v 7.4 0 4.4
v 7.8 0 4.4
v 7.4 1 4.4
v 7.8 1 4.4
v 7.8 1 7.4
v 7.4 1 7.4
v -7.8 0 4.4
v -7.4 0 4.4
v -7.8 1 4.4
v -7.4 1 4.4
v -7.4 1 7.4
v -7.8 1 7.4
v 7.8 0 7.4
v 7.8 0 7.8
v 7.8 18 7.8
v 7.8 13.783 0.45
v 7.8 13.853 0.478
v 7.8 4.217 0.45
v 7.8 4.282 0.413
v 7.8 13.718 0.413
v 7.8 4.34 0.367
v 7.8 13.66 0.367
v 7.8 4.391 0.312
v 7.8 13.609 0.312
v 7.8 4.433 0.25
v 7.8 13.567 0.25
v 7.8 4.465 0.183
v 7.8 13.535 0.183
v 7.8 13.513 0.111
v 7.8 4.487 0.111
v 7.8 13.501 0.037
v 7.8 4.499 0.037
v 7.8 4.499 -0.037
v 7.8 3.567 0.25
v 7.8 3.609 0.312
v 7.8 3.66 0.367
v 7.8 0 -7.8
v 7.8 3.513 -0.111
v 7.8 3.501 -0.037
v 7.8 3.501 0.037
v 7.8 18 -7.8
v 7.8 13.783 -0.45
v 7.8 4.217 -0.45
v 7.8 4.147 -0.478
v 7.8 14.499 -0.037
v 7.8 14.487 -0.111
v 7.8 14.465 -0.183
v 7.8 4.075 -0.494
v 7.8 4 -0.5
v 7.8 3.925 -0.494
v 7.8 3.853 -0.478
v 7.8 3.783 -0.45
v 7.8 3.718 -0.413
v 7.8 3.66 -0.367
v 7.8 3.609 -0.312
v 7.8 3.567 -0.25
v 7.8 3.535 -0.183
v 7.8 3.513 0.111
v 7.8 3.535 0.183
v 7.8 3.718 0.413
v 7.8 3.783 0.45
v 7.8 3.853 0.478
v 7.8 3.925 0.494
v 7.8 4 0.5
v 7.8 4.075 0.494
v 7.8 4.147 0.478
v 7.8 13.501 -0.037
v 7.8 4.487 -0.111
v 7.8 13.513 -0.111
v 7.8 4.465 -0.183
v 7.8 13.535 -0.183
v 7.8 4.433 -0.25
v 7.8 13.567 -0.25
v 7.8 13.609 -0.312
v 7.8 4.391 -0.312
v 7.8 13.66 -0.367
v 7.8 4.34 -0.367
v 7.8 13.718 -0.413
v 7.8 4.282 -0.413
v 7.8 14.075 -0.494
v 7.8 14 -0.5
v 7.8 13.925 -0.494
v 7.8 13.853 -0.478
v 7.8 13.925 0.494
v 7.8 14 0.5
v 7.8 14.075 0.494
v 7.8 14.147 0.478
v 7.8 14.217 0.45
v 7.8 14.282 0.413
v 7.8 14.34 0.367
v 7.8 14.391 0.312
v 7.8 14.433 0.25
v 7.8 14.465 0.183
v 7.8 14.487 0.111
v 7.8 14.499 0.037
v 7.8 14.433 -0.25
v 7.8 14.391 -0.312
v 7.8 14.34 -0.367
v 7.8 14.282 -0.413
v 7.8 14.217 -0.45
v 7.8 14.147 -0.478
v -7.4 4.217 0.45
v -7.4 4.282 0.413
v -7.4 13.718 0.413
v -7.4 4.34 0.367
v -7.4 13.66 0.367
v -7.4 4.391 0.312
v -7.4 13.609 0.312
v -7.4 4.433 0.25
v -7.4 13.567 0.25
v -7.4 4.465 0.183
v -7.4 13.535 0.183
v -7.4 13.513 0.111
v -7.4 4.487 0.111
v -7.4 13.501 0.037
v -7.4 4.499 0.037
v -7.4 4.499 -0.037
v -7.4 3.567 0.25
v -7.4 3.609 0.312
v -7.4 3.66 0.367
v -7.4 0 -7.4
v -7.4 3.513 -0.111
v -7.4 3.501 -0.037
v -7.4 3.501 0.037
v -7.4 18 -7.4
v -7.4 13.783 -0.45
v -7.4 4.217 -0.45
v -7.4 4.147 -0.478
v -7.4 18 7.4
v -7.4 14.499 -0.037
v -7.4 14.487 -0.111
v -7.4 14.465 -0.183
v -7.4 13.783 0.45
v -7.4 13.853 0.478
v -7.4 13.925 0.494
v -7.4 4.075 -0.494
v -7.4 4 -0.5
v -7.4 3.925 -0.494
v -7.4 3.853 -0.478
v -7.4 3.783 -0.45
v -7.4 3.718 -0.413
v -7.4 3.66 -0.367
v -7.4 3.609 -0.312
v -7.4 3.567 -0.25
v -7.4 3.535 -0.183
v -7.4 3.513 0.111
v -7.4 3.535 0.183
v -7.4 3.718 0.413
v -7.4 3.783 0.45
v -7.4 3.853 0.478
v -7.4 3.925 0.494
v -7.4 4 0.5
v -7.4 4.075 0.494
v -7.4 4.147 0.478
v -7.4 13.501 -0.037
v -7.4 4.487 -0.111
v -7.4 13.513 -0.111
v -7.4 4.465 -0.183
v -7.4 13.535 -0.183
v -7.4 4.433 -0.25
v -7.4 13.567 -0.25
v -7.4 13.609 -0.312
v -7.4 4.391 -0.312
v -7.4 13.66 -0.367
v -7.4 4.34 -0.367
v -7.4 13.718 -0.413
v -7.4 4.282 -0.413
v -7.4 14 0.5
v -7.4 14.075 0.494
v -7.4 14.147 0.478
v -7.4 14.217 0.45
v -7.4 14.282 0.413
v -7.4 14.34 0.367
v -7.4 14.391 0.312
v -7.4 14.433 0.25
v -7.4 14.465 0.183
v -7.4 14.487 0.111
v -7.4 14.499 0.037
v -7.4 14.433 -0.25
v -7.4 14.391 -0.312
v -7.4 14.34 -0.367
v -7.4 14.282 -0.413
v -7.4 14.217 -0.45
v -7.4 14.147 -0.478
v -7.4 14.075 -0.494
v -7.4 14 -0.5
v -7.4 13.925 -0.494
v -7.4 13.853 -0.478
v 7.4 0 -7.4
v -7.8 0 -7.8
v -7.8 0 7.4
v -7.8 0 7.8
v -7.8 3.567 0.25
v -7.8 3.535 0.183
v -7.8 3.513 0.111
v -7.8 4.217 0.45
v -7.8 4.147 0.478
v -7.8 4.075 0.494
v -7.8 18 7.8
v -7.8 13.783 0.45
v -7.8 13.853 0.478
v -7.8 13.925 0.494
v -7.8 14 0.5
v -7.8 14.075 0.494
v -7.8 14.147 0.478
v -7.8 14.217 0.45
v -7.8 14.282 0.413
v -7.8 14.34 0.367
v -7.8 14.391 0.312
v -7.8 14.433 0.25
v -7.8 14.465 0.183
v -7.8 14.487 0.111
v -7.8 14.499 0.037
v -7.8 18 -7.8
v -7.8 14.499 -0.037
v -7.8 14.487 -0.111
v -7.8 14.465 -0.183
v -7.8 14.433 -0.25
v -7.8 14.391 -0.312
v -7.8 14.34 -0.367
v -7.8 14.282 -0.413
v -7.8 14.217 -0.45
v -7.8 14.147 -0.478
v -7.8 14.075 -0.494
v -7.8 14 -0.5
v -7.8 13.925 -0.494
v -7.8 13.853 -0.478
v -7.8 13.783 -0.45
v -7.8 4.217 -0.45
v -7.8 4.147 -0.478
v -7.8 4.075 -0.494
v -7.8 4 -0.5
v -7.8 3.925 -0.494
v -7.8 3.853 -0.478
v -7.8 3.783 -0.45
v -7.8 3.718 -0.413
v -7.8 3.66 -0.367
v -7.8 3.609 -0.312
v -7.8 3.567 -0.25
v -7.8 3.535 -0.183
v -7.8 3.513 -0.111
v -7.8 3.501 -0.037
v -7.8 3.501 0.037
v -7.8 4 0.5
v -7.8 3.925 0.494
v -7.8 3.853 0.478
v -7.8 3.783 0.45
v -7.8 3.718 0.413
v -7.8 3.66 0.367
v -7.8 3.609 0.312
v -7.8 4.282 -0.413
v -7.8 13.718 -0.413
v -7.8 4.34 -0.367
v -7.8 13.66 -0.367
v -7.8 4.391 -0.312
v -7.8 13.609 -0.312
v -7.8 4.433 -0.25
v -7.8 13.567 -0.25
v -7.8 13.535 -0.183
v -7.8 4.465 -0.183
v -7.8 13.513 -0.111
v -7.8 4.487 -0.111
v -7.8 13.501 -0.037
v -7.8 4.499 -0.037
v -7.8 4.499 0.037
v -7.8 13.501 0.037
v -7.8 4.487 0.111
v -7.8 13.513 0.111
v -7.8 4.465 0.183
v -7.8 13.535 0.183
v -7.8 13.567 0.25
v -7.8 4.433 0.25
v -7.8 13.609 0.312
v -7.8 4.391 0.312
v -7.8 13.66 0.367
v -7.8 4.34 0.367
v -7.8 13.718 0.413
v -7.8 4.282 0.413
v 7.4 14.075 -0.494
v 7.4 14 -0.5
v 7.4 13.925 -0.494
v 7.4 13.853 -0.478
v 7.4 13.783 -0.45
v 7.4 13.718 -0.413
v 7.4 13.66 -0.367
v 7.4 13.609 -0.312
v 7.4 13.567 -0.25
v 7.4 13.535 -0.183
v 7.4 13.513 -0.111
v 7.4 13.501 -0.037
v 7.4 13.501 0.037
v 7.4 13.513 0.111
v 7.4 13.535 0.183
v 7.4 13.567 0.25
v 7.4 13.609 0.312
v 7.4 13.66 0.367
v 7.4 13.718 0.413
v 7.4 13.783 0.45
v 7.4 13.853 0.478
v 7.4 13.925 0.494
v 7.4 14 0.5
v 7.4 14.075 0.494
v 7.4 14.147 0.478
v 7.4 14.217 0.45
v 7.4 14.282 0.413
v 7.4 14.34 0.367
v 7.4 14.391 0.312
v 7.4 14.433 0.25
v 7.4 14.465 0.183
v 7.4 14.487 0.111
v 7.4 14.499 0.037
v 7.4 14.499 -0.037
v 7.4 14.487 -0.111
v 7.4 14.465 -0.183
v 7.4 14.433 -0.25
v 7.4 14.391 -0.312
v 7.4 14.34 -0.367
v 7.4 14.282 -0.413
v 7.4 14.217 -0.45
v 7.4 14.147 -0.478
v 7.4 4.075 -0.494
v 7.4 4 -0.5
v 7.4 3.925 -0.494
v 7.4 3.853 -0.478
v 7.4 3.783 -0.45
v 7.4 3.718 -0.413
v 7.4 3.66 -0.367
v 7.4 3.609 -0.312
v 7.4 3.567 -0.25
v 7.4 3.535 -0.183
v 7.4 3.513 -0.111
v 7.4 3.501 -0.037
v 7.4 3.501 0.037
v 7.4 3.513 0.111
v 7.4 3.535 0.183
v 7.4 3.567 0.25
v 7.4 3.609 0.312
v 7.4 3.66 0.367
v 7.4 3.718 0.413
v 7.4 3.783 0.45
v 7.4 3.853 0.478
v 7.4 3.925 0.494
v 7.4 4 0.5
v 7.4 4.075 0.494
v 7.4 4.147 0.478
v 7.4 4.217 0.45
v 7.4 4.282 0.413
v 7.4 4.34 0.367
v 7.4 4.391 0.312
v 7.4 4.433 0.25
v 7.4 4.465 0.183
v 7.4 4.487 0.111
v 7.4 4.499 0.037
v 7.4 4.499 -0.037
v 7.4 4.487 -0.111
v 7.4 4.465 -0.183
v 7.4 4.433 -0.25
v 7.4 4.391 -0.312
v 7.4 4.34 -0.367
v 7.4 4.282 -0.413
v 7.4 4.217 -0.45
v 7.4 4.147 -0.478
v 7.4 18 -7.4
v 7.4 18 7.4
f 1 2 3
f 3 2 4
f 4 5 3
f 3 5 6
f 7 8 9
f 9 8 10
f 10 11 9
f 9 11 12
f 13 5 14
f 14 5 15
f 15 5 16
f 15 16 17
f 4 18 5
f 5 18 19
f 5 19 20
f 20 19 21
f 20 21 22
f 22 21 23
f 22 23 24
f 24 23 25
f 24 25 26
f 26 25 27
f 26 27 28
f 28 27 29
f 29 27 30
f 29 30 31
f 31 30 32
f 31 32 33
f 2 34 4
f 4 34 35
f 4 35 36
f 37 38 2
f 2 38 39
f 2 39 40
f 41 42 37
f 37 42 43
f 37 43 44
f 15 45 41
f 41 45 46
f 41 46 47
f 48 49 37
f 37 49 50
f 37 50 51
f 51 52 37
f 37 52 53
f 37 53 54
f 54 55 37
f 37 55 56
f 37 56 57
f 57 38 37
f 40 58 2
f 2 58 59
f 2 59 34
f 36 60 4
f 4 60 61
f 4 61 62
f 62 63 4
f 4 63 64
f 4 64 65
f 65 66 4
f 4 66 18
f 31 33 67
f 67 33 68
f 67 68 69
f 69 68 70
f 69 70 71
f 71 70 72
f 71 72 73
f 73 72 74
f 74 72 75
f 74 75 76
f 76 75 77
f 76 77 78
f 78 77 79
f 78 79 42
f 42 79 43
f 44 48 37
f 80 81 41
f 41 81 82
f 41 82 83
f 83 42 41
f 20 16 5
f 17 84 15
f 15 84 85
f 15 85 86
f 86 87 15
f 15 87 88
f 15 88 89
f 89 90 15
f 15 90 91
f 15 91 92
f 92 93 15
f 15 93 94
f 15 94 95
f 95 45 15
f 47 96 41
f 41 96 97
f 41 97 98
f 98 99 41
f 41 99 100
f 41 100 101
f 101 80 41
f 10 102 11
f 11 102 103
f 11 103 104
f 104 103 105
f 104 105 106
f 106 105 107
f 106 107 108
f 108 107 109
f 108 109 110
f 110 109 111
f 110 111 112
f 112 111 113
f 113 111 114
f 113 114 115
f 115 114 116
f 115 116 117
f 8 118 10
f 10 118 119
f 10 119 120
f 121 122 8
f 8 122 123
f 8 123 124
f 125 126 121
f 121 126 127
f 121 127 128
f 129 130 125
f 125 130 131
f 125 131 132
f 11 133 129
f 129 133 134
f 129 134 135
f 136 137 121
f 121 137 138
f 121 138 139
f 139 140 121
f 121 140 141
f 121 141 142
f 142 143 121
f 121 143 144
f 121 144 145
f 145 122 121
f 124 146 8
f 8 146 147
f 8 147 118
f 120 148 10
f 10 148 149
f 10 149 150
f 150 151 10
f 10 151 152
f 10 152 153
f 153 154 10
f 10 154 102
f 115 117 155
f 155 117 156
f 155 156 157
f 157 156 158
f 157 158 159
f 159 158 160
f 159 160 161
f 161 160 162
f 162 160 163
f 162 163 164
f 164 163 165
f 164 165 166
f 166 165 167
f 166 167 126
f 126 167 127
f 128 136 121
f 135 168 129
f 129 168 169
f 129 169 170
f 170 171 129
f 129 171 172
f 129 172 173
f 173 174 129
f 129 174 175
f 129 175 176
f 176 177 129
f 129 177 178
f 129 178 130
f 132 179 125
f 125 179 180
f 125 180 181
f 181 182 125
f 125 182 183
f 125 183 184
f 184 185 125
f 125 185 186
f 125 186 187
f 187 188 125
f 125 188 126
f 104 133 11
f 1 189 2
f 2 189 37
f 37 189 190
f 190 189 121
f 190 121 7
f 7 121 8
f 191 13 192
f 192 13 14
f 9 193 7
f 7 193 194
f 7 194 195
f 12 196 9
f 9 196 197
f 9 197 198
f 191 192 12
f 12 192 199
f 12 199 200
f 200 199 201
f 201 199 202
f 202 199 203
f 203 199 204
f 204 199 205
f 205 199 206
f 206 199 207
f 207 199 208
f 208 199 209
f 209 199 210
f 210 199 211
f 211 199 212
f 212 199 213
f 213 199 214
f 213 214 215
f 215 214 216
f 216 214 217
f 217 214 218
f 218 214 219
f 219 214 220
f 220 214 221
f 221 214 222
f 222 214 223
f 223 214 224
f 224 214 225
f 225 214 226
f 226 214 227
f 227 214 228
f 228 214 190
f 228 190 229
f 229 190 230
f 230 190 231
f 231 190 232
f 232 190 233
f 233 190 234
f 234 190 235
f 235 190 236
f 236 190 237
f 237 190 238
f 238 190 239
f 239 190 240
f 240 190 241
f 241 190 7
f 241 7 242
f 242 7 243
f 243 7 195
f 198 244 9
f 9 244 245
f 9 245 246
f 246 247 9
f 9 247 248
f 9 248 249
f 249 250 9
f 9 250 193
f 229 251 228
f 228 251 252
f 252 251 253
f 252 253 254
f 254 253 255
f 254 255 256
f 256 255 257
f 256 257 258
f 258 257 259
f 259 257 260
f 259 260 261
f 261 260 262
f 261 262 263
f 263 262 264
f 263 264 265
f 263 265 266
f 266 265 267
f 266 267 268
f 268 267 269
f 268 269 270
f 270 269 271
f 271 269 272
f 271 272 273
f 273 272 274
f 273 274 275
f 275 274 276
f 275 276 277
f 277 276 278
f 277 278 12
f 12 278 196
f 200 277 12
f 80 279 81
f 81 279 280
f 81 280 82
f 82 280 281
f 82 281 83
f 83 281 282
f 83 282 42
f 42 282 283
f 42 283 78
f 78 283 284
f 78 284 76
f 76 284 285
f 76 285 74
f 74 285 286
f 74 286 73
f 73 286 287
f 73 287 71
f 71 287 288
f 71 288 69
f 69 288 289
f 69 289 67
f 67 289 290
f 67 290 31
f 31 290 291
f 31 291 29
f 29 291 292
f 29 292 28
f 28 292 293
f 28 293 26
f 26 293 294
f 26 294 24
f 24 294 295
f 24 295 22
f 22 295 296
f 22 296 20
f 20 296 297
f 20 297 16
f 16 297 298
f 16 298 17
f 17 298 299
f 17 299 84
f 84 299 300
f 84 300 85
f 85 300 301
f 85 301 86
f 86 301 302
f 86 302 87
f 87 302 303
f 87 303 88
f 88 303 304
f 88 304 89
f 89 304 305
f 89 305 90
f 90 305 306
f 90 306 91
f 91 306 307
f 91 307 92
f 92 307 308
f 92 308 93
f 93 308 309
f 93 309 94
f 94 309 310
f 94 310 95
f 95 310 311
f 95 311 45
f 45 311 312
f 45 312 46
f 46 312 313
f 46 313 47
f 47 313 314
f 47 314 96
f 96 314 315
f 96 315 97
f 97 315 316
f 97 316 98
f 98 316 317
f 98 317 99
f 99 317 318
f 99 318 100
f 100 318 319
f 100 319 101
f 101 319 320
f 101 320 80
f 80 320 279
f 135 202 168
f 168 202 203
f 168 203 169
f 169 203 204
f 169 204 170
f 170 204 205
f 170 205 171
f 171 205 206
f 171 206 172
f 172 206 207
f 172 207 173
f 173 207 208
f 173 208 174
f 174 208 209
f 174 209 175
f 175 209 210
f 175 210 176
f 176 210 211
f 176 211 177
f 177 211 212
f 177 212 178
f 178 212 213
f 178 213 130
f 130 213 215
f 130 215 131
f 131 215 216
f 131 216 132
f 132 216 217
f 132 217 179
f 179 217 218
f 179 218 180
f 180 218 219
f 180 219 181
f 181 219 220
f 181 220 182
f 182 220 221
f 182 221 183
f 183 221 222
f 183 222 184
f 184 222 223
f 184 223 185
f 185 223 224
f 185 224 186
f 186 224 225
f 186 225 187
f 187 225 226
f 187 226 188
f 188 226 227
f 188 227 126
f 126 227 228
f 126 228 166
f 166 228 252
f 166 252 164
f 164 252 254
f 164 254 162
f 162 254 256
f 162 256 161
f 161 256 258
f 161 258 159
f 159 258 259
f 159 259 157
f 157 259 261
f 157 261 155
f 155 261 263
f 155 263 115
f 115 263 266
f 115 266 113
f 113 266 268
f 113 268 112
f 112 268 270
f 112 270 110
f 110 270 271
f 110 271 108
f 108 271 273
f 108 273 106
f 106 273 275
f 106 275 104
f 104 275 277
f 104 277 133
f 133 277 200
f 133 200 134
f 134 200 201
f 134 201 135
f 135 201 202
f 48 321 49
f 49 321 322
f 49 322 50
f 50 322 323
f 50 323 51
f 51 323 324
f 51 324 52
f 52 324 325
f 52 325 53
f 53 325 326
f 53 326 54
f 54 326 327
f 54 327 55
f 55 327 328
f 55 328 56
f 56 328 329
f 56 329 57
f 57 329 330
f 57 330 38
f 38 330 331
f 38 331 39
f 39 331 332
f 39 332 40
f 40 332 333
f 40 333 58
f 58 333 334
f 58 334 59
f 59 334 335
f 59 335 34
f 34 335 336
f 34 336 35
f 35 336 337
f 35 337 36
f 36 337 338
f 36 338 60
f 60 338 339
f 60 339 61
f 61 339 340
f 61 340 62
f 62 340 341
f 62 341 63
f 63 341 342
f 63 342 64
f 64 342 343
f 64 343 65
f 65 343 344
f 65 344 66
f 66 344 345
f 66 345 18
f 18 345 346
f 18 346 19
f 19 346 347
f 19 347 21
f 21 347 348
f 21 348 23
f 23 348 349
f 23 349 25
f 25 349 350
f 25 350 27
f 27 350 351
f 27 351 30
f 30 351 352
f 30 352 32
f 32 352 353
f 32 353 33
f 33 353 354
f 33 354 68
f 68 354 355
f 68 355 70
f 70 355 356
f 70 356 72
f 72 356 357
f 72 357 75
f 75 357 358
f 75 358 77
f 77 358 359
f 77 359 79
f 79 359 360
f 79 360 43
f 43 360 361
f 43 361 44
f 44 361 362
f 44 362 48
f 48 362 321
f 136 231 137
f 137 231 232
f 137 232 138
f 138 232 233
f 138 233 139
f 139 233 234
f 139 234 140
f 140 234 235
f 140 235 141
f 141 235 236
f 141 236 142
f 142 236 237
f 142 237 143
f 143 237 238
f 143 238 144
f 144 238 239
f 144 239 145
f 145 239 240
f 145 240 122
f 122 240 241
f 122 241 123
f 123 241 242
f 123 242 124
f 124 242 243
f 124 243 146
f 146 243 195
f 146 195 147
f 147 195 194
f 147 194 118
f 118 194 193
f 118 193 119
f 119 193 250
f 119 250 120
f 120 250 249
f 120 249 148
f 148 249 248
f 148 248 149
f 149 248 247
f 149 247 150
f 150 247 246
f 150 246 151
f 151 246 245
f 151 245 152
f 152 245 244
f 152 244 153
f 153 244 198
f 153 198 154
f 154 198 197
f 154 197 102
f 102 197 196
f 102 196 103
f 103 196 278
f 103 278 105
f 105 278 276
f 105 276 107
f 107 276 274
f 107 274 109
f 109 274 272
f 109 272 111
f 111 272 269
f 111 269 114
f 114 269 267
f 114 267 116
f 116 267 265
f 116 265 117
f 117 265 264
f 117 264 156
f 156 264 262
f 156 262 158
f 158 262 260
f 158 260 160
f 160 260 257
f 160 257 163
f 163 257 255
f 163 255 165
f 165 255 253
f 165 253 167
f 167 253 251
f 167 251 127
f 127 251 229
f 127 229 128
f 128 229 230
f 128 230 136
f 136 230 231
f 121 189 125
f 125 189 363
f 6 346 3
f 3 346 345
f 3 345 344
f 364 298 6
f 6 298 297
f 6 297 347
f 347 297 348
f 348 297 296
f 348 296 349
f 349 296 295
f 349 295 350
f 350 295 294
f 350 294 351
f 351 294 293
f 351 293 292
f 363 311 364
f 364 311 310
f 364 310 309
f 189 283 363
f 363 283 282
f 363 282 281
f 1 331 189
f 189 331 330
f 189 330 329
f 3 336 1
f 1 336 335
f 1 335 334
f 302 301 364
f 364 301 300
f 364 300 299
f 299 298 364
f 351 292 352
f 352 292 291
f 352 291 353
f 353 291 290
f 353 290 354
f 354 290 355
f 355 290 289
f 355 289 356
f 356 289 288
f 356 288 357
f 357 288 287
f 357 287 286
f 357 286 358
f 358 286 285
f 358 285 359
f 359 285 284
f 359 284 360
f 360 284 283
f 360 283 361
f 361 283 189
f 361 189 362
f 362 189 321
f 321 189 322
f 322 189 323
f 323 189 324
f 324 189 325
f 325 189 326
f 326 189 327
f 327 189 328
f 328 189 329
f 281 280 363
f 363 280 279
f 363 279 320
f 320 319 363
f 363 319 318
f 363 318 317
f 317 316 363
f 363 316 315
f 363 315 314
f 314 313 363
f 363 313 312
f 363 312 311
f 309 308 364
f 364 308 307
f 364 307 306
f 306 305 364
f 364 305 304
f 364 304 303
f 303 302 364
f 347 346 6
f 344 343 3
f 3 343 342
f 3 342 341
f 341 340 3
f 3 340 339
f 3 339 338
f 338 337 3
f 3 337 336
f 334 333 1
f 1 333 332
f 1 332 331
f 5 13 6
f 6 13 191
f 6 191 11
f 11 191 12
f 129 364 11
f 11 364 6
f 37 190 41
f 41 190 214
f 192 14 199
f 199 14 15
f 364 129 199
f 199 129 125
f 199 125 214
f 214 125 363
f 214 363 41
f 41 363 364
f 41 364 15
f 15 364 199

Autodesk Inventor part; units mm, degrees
ref_plane "YZ Plane" through (0, 0, 0) normal (1, 0, 0) x (0, 1, 0)
ref_plane "XZ Plane" through (0, 0, 0) normal (0, 1, 0) x (-1, 0, 0)
ref_plane "XY Plane" through (0, 0, 0) normal (0, 0, 1) x (1, 0, 0)
sketch "Sketch1" plane through (0, 0, 0) normal (0, 1, 0) x (-1, 0, 0)
  line L0 (7.8, 0) -> (7.8, -7.8)
  line L1 (7.8, -7.8) -> (-7.8, -7.8)
  line L2 (-7.8, -7.8) -> (-7.8, 7.8)
  line L3 (-7.8, 7.8) -> (7.8, 7.8)
  line L4 (7.8, 7.8) -> (7.8, 0)
  line L5 (7.8, 7.8) -> (7, 7.8)
  line L6 (-7.8, 7.8) -> (-7.8, 7.4)
  line L7 (-7.8, -7.8) -> (-7.4, -7.8)
  line L8 (7.8, -7.8) -> (7.8, -7.4)
  line L9 (0, 0) -> (7.4, 0)
  line L10 (7.4, 0) -> (7.4, -7.4)
  line L11 (7.4, -7.4) -> (-7.4, -7.4)
  line L12 (-7.4, -7.4) -> (-7.4, 7.4)
  line L13 (-7.4, 7.4) -> (7.4, 7.4)
  line L14 (7.4, 7.4) -> (7.4, 0)
  line L15 (2.7947, -7.8) -> (2.7947, -7.4)
  dimension "d1" = 7.8
  dimension "d2" = 15.6
  dimension "d3" = 15.6
  dimension "d4" = 15.6
  dimension "d5" = 7.8
  dimension "d62" = 7.4
  dimension "d63" = 7.4
  dimension "d64" = 14.8
  dimension "d65" = 14.8
  dimension "d66" = 14.8
  dimension "d68" = 0.4
extrude "Extrusion1" add sketch "Sketch1" along normal blind 18 contours L0 L1 L2 L3 L4 | L10 L11 L12 L13 L14
shell "Shell2" thickness 0.4 removed faces 2 at (2.6, 18, 0) at (2.6, 0, 0)
sketch "Sketch4" plane through (-7.8, 0, -7.8) normal (-1, 0, 0) x (0, 0, 1)
  line L0 (7.8, 0) -> (7.8, 4)
  circle A0 centre (7.8, 4) radius 0.5
  dimension "d17" = 4
  dimension "d18" = 1
hole "Hole1" at (-7.8, 4, 0) direction (1, 0, 0) diameter 1 depth 20
sketch "Sketch8" plane through (7.8, 0, 7.8) normal (1, 0, 0) x (0, 0, -1)
  line L0 (15.2, 18) -> (0.4, 18) projected
  line L1 (7.8, 18) -> (7.8, 14)
  circle A0 centre (7.8, 14) radius 0.5
  point P0 (7.8, 0)
  dimension "d50" = 4
  dimension "d51" = 1
hole "Hole4" at (7.8, 14, 0) direction (-1, 0, 0) diameter 1 depth 20
sketch "Sketch9" plane through (0, 0, 0) normal (0, -1, 0) x (1, 0, 0)
  line L0 (7.4, 7.4) -> (-7.4, 7.4) projected
  line L1 (-7.4, 7.4) -> (-7.4, 4.4)
  line L2 (-7.4, -7.4) -> (-7.4, 7.4) projected
  line L3 (-7.4, 4.4) -> (-7.8, 4.4)
  line L4 (-7.8, -7.8) -> (-7.8, 7.8) projected
  line L5 (-7.8, 4.4) -> (-7.8, 7.4)
  line L6 (-7.8, 7.4) -> (-7.4, 7.4)
  line L7 (7.4, 7.4) -> (7.4, 4.4)
  line L8 (7.4, 7.4) -> (7.4, -7.4) projected
  line L9 (7.4, 4.4) -> (7.8, 4.4)
  line L10 (7.8, 7.8) -> (7.8, -7.8) projected
  line L11 (7.8, 4.4) -> (7.8, 7.4)
  line L12 (7.8, 7.4) -> (7.4, 7.4)
  point P0 (0, 0)
  dimension "d69" = 3
  dimension "d70" = 3
extrude "Extrusion2" cut sketch "Sketch9" against normal blind 1
properties part number "Part4_cover" material "ABS Plastic"
